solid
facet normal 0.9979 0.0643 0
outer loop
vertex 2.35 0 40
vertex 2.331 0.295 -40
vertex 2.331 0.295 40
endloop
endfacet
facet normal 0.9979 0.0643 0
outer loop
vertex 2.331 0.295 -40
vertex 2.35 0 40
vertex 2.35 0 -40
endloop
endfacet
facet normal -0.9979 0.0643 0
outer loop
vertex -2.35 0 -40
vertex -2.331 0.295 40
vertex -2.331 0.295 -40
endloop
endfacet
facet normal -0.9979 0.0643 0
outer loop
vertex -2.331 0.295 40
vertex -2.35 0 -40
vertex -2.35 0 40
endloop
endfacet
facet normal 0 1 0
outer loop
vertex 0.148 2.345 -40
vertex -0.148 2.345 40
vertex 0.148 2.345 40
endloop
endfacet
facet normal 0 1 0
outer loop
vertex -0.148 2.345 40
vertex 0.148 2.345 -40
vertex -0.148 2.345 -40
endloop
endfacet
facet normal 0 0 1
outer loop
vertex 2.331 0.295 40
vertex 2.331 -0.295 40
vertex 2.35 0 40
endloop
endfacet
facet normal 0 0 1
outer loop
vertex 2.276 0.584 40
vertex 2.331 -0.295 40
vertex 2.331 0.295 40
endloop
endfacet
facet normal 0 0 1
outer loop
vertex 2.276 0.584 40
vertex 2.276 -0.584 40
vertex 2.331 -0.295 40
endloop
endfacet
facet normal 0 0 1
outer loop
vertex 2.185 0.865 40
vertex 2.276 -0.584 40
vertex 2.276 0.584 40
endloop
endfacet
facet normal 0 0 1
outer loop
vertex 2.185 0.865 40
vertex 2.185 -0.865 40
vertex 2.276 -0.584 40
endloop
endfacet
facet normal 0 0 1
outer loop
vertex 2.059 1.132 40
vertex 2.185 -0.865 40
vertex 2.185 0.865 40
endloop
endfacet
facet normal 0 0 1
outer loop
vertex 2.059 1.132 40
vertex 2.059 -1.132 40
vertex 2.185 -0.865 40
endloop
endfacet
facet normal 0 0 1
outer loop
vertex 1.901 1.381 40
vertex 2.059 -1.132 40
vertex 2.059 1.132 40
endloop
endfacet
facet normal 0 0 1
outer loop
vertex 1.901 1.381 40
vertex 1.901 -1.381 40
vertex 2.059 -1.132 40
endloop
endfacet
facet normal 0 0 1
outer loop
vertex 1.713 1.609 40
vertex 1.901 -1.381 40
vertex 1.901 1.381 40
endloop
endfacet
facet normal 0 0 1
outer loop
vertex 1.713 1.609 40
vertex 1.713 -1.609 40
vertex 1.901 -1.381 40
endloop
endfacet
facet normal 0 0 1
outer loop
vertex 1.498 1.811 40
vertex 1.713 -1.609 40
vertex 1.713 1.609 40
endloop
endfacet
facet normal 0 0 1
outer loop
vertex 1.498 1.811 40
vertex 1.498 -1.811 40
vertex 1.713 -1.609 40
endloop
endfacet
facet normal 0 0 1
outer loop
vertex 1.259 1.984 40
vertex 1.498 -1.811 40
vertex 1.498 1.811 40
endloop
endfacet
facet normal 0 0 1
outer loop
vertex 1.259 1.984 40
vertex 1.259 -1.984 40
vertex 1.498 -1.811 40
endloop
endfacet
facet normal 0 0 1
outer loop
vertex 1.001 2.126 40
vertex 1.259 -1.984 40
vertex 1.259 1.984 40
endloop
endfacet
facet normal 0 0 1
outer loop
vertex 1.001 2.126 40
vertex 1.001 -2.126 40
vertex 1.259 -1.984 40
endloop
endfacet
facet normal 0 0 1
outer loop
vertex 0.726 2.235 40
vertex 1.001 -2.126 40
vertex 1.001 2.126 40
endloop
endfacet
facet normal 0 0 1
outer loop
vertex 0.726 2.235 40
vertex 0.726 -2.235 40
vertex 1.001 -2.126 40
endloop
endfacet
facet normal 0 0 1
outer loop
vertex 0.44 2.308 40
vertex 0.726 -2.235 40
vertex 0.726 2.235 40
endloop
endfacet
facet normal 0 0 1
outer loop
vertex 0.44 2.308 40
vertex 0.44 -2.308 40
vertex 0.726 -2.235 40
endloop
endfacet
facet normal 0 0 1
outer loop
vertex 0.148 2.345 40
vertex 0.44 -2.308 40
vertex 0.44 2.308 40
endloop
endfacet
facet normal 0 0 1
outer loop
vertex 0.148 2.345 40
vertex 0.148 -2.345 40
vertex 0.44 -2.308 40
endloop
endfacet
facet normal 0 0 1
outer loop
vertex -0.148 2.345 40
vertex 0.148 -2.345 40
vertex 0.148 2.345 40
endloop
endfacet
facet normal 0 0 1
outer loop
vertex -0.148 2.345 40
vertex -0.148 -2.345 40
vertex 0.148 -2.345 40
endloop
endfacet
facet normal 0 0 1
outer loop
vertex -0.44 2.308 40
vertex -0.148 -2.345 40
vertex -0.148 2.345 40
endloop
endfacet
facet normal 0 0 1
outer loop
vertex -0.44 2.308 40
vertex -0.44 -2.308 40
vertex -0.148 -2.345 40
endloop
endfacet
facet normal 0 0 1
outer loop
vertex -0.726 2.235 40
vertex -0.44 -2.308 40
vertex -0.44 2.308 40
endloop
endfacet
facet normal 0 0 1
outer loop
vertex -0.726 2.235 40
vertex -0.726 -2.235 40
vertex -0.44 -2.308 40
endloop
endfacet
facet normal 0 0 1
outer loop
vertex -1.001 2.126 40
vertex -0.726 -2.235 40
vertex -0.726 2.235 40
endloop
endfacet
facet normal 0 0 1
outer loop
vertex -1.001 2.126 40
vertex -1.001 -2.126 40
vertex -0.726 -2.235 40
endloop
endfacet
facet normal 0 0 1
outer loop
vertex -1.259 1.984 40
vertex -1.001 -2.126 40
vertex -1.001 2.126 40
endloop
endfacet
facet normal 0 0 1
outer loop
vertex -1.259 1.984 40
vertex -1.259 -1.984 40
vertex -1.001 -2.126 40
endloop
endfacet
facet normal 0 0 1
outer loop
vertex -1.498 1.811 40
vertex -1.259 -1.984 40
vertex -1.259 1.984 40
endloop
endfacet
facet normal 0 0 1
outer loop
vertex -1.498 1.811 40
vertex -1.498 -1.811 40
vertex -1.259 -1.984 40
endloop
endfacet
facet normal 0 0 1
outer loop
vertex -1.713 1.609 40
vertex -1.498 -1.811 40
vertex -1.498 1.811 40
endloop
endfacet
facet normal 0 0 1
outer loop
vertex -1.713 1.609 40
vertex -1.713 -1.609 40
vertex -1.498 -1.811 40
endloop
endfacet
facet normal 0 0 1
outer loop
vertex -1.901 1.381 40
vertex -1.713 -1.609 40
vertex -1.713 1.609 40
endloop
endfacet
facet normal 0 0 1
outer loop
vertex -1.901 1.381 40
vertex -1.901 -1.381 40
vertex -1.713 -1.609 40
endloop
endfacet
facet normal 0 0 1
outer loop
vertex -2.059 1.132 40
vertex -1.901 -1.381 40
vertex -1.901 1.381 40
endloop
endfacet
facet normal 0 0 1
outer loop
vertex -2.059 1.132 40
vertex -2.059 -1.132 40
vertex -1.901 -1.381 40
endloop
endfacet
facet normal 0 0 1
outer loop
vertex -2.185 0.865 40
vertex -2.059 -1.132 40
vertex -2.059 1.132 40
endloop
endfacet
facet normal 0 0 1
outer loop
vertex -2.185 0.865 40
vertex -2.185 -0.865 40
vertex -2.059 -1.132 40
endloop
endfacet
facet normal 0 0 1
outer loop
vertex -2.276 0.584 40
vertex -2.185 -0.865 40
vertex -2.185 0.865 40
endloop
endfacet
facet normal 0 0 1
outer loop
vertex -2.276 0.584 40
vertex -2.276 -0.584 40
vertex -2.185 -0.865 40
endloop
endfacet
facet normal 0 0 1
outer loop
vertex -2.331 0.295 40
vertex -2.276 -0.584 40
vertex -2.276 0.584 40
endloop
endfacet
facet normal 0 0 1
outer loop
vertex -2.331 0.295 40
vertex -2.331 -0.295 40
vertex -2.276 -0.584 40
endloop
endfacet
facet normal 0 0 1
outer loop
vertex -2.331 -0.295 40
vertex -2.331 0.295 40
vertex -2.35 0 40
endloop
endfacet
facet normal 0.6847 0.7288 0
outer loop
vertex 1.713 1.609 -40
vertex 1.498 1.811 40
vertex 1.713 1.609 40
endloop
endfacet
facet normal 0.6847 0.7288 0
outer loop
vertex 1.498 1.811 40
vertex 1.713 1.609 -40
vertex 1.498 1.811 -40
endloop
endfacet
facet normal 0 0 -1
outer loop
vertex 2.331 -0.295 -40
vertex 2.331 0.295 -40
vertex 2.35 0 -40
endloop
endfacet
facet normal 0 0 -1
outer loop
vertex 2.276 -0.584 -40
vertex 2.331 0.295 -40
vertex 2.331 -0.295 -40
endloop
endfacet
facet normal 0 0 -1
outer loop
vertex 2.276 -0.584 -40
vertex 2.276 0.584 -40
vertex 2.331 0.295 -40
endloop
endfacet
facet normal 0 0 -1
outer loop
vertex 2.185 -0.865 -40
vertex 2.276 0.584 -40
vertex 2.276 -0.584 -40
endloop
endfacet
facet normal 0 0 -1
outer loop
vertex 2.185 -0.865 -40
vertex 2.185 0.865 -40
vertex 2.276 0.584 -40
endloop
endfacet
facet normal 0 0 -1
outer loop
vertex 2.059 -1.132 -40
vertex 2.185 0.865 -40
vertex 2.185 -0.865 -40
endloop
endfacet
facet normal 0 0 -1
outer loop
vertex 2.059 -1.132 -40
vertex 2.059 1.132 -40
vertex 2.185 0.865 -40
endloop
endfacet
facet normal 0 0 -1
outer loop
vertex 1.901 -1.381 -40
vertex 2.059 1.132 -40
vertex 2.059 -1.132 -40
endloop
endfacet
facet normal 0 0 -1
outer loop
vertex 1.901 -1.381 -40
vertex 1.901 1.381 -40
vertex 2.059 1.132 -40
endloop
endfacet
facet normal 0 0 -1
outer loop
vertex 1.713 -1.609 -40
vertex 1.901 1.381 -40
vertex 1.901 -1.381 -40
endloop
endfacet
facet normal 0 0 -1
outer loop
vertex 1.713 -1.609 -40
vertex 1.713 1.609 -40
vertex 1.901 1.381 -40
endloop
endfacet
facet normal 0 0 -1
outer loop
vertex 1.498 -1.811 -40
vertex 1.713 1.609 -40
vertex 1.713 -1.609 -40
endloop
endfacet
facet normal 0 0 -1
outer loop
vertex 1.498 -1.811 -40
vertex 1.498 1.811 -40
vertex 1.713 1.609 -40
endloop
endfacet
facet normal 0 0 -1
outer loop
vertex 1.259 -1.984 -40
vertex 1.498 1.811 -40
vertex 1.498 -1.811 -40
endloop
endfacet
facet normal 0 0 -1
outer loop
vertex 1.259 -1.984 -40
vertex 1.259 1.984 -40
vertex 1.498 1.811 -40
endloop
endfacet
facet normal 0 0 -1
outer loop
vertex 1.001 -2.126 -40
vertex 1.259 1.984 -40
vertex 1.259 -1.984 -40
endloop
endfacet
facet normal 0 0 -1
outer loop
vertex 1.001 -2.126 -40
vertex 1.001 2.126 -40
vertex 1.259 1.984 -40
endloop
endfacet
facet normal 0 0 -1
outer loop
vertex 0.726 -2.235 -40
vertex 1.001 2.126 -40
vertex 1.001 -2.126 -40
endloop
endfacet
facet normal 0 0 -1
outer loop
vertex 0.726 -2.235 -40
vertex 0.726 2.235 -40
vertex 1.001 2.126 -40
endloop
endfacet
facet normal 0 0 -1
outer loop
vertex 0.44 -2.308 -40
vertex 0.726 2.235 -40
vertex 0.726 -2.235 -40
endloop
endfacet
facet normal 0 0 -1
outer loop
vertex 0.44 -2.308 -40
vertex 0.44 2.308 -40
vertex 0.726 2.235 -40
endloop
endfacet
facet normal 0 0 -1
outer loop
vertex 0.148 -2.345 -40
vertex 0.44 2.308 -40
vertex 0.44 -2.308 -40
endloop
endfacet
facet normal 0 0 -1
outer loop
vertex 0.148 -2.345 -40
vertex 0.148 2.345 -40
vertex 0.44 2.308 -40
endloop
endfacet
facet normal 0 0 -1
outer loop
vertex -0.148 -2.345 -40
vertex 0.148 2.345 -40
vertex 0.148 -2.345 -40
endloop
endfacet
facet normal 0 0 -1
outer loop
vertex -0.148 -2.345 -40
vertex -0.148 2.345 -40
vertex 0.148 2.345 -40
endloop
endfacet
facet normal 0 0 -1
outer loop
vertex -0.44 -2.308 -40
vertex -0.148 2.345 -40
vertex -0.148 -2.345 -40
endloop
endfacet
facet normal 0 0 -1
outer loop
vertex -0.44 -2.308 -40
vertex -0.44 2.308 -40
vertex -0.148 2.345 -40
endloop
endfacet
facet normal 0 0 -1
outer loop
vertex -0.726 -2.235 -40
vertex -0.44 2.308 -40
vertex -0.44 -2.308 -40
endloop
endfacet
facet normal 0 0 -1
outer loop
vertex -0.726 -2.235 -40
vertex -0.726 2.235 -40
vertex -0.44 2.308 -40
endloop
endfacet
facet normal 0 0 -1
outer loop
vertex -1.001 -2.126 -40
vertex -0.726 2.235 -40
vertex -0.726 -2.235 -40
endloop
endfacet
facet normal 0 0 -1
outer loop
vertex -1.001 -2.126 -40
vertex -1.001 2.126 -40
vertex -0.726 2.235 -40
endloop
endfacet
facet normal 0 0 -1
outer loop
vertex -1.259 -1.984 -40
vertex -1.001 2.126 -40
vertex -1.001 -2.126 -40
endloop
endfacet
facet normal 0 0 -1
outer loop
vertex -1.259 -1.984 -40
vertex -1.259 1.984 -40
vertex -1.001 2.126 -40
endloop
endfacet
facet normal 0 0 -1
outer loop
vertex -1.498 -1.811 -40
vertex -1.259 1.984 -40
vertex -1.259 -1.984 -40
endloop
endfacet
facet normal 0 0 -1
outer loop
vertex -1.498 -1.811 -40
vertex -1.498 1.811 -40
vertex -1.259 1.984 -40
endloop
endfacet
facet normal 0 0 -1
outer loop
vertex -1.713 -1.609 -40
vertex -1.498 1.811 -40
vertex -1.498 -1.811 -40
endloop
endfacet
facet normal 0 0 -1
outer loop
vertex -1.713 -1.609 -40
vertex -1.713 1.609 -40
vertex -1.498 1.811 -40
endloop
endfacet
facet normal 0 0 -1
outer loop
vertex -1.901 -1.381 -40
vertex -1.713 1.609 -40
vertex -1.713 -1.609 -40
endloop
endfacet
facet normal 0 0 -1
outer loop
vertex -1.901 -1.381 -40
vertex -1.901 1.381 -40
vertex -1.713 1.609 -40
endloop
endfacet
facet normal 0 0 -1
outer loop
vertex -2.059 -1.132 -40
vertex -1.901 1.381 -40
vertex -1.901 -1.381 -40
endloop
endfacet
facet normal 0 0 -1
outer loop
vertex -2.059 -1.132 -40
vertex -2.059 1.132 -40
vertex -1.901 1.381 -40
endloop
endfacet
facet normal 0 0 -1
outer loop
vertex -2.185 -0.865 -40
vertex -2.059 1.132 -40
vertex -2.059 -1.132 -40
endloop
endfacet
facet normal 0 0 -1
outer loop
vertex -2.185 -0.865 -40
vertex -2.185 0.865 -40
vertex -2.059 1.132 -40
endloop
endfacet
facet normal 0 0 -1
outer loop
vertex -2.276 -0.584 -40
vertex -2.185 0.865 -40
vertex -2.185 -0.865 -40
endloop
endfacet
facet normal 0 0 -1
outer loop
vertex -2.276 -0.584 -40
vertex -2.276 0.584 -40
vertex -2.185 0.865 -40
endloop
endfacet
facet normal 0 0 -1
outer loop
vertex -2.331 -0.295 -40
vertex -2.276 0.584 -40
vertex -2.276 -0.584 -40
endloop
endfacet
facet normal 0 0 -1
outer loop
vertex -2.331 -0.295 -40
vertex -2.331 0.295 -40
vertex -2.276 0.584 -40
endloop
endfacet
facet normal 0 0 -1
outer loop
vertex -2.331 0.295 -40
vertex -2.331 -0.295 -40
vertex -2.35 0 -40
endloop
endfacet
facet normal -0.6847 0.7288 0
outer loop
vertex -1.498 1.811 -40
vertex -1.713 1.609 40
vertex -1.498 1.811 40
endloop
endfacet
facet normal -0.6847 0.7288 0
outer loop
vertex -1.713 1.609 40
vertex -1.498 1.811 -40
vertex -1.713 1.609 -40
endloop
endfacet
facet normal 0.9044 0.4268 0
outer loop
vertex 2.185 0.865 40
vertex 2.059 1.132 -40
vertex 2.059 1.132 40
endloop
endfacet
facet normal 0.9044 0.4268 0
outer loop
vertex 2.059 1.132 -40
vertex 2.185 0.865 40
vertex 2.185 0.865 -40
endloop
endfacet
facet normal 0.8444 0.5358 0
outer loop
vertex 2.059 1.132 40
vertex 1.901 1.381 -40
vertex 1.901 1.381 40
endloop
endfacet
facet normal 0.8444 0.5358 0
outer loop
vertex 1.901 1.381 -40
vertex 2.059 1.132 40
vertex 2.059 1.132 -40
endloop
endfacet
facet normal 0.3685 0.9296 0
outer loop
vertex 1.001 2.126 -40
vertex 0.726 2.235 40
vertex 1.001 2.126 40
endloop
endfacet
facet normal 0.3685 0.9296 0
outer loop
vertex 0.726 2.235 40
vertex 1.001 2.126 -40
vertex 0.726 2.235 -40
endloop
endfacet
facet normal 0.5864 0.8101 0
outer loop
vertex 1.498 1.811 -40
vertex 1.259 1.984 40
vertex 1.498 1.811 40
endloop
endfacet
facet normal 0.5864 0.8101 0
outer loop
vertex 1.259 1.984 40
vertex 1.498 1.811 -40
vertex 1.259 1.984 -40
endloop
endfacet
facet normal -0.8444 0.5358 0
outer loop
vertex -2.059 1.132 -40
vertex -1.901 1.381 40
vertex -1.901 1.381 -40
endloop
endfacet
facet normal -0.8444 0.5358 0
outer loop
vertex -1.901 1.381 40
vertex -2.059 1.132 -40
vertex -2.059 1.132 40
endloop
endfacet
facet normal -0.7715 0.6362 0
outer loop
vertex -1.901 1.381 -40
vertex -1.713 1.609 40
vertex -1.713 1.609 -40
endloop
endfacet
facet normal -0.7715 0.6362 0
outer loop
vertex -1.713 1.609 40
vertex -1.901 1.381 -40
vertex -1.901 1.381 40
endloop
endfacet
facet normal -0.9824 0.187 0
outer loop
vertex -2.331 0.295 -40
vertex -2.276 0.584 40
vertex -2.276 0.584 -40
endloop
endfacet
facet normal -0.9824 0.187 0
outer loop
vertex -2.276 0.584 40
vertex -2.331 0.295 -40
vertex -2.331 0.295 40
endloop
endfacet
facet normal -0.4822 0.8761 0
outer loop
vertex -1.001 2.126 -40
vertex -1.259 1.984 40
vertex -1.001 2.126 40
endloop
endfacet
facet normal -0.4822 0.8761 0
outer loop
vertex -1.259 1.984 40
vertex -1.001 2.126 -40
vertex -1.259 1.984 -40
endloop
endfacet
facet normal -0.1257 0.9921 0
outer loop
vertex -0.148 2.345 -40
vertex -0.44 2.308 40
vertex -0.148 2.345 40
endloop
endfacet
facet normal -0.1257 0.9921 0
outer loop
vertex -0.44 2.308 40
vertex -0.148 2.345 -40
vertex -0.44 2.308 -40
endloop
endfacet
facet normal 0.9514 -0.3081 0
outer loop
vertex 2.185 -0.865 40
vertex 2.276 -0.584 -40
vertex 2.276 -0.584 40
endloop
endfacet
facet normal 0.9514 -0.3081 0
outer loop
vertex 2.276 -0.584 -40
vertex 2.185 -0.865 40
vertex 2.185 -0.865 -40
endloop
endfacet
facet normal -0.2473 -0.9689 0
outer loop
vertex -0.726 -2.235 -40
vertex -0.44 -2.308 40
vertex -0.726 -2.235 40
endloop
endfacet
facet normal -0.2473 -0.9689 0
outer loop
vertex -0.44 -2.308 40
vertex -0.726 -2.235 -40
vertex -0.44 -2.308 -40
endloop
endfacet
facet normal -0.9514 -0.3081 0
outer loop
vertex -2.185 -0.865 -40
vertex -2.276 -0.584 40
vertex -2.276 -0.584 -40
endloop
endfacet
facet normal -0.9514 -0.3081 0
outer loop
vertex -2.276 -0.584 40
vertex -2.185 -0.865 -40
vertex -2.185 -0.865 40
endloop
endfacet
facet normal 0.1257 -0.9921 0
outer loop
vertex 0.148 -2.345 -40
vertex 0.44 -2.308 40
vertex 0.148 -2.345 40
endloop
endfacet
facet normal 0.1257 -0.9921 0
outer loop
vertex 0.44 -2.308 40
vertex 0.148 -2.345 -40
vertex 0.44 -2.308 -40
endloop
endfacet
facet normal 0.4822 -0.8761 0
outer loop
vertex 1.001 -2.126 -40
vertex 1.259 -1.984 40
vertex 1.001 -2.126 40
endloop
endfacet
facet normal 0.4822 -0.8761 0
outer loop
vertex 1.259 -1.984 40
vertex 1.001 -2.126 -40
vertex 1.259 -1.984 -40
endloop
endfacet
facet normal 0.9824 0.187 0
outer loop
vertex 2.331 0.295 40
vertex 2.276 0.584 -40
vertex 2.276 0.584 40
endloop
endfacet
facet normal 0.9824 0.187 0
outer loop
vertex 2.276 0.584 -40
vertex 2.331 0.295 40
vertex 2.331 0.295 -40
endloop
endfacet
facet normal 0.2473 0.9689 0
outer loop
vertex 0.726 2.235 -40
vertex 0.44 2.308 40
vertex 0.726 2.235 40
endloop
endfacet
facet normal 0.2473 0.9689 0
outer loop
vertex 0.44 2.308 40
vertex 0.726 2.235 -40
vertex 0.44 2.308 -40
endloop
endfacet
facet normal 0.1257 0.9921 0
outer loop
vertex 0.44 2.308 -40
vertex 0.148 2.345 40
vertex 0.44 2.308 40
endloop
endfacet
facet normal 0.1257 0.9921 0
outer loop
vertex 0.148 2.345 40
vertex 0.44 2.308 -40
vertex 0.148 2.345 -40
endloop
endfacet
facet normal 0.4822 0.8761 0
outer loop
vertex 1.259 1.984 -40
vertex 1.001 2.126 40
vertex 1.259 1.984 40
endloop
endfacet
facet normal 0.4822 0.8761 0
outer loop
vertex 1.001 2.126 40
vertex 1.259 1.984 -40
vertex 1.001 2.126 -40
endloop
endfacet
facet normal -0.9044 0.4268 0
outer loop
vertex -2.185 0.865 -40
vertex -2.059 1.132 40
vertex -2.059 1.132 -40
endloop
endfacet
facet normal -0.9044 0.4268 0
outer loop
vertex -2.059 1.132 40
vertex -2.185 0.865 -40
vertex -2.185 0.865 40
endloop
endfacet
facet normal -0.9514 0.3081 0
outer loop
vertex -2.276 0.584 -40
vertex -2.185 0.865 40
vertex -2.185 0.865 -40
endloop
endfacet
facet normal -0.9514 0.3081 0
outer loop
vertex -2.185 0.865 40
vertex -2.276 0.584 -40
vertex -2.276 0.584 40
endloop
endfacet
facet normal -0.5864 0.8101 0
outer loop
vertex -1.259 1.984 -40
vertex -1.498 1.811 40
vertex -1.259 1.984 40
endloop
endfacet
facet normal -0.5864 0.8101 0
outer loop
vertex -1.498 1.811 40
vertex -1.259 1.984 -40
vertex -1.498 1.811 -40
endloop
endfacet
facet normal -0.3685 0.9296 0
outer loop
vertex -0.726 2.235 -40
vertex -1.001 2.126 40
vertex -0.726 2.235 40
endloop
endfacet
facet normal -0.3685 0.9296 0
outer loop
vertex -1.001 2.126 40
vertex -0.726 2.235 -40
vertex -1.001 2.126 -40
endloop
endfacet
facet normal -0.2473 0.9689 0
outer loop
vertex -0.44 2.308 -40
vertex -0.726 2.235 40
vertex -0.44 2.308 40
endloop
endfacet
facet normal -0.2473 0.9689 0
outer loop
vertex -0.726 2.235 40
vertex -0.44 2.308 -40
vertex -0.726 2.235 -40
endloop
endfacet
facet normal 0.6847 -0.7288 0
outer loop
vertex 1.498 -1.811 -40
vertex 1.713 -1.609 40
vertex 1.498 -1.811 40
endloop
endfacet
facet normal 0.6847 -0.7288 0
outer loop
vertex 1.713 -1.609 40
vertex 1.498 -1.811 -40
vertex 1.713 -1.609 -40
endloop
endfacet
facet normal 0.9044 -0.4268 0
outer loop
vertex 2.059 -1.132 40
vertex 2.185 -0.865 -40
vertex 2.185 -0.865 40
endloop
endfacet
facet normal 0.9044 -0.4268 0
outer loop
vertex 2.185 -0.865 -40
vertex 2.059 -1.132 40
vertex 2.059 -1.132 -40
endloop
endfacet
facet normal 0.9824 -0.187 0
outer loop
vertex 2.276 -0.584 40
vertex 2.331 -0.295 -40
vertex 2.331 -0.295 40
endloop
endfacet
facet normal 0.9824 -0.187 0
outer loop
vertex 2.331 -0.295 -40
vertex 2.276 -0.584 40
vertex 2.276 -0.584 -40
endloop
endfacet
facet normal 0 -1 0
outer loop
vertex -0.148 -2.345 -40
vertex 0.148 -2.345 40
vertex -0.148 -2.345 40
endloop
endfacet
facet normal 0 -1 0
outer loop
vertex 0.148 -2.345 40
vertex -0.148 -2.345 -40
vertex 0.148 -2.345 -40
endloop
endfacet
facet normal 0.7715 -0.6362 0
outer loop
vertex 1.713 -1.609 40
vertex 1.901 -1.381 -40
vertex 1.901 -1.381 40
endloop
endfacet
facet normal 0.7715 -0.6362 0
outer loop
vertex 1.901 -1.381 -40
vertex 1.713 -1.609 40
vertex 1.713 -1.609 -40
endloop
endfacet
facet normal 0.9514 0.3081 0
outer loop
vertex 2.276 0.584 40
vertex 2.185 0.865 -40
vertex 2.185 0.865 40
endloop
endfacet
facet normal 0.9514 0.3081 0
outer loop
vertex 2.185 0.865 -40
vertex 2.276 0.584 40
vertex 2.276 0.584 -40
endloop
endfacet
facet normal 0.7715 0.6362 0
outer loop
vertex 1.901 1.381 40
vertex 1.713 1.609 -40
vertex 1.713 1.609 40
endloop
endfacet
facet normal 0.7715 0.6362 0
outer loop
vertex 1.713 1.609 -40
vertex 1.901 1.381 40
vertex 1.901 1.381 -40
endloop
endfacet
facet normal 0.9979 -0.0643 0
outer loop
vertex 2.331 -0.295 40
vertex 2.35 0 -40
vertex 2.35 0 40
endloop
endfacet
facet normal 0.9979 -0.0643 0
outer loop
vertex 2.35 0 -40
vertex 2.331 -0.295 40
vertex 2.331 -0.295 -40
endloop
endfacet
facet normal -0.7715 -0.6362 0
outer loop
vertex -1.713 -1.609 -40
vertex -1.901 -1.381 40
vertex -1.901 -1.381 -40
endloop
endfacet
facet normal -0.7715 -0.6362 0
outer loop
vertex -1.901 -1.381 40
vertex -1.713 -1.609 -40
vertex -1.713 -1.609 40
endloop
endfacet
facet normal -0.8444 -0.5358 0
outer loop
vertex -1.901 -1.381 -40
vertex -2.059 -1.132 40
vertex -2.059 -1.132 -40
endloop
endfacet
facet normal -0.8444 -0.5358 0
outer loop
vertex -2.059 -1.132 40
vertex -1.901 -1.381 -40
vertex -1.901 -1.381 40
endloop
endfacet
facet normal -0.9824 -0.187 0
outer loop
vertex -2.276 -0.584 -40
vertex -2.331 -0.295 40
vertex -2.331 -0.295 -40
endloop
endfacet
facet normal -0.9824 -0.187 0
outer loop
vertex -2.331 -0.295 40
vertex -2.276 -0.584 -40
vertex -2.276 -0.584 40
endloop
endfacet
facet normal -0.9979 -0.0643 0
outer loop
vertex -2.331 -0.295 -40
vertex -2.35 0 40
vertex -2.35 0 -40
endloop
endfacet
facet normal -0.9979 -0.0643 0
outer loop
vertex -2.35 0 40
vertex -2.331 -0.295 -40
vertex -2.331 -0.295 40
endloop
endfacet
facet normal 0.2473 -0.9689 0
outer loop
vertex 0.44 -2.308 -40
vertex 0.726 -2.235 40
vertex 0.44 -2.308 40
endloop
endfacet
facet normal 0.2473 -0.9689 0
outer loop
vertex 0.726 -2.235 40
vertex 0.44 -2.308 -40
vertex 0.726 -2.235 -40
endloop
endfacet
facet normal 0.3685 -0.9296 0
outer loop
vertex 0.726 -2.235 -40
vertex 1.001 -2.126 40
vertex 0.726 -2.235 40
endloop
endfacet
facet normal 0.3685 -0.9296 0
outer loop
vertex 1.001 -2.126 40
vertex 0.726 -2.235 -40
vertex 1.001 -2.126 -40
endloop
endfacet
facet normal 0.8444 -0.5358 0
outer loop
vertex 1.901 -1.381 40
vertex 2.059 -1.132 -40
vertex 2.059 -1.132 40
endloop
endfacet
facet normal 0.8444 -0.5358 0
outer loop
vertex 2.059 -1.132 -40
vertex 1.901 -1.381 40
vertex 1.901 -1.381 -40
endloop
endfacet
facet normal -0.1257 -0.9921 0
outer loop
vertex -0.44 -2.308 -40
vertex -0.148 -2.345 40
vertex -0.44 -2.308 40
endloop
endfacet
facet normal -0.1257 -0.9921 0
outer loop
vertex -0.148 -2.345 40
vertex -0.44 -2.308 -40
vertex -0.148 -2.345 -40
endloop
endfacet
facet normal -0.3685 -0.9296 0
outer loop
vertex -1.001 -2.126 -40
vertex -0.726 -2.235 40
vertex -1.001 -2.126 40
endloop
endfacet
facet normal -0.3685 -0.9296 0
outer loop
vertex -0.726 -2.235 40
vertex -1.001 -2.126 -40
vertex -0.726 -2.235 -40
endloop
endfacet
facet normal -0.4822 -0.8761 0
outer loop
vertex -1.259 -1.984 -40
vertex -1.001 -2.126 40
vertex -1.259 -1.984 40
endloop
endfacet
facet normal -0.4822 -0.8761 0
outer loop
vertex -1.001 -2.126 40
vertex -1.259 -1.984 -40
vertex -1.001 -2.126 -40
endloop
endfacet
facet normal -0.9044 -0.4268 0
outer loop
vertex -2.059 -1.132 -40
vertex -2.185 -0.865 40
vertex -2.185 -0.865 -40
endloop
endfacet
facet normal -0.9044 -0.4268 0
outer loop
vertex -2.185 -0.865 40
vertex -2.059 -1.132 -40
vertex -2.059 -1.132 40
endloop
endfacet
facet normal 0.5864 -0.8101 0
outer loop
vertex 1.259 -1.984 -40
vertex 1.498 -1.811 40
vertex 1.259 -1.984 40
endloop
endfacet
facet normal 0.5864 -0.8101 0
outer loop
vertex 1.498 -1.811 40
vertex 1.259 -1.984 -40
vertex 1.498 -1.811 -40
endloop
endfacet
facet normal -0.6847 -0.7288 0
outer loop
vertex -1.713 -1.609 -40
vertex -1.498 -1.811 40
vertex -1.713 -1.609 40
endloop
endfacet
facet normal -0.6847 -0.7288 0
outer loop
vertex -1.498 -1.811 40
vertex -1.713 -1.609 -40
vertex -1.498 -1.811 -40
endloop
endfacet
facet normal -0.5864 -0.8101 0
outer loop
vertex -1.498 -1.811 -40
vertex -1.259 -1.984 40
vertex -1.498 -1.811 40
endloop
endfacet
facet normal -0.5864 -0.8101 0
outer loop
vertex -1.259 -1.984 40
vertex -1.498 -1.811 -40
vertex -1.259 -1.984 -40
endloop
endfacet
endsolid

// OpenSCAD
$fn = 50;


difference() {
	union() {
		translate(v = [0, 0, -40.0000000000]) {
			cylinder(h = 80, r = 2.3500000000);
		}
	}
	union() {
		translate(v = [0, 0, -100.0000000000]) {
			cylinder(h = 200, r = 0);
		}
	}
}
